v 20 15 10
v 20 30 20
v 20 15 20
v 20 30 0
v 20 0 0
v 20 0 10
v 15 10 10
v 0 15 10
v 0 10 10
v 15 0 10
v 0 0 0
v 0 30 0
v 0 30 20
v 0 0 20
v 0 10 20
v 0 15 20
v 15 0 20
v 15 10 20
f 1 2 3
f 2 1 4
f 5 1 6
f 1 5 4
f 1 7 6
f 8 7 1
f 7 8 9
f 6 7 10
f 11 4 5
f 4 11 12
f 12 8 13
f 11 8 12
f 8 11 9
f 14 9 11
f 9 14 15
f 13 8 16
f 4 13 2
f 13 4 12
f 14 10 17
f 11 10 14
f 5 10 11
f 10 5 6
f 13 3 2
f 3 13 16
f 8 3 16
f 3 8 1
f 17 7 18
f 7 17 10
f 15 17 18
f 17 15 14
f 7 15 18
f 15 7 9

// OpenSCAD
// Dimensions
base_width = 20;
base_depth = 30;
base_height = 10;

top_block_width = 20;
top_block_depth = 15;
top_block_height = 10;

sloped_length = 15;
sloped_height = 10;

// Base block
cube([base_width, base_depth, base_height]);

// Top block (stepped part)
translate([0, base_depth - top_block_depth, base_height])
    cube([top_block_width, top_block_depth, top_block_height]);

// Sloped block
translate([0, 0, 0])
    linear_extrude(height = base_width)
        polygon(points=[
            [0, 0],
            [sloped_length, 0],
            [sloped_length, sloped_height],
            [0, base_height]
        ]);
